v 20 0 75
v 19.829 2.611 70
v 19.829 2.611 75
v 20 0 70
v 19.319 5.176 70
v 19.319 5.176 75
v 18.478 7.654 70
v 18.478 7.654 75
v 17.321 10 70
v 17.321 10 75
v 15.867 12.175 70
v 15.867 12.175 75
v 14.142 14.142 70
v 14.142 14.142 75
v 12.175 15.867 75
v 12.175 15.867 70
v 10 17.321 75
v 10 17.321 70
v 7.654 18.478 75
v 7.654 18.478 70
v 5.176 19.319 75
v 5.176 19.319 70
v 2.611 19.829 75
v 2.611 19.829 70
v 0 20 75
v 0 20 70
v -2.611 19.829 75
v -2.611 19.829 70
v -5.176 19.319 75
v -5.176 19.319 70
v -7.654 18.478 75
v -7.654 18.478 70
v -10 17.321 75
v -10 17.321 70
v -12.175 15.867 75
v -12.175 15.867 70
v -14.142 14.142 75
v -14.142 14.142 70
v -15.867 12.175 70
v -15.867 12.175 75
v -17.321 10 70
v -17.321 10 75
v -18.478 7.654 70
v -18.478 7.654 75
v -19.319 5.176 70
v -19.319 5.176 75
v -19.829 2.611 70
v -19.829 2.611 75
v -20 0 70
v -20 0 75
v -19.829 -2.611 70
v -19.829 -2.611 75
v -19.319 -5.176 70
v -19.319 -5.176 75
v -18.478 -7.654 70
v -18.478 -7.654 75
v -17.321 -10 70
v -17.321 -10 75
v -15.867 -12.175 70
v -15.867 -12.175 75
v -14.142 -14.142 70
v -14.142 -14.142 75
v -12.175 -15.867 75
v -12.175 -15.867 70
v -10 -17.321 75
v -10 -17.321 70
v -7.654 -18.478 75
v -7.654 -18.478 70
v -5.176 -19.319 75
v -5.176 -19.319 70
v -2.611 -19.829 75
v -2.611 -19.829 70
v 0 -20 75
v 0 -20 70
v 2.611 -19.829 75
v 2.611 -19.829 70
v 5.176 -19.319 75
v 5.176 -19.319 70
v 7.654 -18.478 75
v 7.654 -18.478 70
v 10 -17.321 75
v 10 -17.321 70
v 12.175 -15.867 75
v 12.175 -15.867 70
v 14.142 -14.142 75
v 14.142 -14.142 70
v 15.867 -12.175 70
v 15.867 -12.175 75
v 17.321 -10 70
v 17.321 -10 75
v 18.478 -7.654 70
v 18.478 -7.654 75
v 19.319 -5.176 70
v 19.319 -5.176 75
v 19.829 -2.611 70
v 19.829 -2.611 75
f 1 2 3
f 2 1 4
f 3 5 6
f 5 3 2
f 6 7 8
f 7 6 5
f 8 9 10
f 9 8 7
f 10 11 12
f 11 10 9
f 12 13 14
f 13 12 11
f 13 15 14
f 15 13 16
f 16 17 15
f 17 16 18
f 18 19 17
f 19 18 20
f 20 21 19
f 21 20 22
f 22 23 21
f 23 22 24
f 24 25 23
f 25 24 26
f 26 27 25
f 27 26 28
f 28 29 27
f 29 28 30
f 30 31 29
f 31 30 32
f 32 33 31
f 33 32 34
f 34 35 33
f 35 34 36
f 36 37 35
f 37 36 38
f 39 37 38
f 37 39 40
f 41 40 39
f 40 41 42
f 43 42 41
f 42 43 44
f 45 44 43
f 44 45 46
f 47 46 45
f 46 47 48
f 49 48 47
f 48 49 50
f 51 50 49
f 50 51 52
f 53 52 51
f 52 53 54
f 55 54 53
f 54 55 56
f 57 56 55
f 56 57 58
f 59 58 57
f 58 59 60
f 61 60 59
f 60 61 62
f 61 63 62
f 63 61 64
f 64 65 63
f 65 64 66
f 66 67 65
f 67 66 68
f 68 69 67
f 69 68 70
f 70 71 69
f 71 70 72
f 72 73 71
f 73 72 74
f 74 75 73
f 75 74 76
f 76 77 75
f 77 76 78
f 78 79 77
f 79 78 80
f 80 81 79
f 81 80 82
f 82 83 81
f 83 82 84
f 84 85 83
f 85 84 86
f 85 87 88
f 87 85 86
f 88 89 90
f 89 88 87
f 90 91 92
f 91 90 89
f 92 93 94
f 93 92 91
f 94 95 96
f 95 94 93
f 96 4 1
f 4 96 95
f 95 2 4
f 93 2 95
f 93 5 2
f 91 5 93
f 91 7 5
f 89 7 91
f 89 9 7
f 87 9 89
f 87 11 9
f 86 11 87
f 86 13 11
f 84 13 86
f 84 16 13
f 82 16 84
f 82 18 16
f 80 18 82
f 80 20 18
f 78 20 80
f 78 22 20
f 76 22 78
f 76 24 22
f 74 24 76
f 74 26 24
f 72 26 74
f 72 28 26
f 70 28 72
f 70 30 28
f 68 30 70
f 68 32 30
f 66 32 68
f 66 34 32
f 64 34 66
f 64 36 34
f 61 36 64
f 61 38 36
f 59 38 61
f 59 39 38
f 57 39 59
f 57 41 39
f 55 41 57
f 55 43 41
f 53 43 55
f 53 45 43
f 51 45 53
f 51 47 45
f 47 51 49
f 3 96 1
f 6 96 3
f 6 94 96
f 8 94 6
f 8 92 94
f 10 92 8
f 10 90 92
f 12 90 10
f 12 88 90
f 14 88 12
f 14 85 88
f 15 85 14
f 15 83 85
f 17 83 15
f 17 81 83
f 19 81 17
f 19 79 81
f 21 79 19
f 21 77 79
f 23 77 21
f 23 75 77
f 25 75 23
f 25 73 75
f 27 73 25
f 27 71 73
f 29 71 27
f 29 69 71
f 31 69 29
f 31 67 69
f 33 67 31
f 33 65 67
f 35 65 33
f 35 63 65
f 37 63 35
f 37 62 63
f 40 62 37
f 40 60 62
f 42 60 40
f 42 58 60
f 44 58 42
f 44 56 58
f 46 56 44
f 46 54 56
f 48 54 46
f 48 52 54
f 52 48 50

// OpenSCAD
// 简易多零件流程测试：Ø40 x 5 托盘，装在立柱顶
translate([0,0,70]) cylinder(d=40,h=5,$fn=48);
